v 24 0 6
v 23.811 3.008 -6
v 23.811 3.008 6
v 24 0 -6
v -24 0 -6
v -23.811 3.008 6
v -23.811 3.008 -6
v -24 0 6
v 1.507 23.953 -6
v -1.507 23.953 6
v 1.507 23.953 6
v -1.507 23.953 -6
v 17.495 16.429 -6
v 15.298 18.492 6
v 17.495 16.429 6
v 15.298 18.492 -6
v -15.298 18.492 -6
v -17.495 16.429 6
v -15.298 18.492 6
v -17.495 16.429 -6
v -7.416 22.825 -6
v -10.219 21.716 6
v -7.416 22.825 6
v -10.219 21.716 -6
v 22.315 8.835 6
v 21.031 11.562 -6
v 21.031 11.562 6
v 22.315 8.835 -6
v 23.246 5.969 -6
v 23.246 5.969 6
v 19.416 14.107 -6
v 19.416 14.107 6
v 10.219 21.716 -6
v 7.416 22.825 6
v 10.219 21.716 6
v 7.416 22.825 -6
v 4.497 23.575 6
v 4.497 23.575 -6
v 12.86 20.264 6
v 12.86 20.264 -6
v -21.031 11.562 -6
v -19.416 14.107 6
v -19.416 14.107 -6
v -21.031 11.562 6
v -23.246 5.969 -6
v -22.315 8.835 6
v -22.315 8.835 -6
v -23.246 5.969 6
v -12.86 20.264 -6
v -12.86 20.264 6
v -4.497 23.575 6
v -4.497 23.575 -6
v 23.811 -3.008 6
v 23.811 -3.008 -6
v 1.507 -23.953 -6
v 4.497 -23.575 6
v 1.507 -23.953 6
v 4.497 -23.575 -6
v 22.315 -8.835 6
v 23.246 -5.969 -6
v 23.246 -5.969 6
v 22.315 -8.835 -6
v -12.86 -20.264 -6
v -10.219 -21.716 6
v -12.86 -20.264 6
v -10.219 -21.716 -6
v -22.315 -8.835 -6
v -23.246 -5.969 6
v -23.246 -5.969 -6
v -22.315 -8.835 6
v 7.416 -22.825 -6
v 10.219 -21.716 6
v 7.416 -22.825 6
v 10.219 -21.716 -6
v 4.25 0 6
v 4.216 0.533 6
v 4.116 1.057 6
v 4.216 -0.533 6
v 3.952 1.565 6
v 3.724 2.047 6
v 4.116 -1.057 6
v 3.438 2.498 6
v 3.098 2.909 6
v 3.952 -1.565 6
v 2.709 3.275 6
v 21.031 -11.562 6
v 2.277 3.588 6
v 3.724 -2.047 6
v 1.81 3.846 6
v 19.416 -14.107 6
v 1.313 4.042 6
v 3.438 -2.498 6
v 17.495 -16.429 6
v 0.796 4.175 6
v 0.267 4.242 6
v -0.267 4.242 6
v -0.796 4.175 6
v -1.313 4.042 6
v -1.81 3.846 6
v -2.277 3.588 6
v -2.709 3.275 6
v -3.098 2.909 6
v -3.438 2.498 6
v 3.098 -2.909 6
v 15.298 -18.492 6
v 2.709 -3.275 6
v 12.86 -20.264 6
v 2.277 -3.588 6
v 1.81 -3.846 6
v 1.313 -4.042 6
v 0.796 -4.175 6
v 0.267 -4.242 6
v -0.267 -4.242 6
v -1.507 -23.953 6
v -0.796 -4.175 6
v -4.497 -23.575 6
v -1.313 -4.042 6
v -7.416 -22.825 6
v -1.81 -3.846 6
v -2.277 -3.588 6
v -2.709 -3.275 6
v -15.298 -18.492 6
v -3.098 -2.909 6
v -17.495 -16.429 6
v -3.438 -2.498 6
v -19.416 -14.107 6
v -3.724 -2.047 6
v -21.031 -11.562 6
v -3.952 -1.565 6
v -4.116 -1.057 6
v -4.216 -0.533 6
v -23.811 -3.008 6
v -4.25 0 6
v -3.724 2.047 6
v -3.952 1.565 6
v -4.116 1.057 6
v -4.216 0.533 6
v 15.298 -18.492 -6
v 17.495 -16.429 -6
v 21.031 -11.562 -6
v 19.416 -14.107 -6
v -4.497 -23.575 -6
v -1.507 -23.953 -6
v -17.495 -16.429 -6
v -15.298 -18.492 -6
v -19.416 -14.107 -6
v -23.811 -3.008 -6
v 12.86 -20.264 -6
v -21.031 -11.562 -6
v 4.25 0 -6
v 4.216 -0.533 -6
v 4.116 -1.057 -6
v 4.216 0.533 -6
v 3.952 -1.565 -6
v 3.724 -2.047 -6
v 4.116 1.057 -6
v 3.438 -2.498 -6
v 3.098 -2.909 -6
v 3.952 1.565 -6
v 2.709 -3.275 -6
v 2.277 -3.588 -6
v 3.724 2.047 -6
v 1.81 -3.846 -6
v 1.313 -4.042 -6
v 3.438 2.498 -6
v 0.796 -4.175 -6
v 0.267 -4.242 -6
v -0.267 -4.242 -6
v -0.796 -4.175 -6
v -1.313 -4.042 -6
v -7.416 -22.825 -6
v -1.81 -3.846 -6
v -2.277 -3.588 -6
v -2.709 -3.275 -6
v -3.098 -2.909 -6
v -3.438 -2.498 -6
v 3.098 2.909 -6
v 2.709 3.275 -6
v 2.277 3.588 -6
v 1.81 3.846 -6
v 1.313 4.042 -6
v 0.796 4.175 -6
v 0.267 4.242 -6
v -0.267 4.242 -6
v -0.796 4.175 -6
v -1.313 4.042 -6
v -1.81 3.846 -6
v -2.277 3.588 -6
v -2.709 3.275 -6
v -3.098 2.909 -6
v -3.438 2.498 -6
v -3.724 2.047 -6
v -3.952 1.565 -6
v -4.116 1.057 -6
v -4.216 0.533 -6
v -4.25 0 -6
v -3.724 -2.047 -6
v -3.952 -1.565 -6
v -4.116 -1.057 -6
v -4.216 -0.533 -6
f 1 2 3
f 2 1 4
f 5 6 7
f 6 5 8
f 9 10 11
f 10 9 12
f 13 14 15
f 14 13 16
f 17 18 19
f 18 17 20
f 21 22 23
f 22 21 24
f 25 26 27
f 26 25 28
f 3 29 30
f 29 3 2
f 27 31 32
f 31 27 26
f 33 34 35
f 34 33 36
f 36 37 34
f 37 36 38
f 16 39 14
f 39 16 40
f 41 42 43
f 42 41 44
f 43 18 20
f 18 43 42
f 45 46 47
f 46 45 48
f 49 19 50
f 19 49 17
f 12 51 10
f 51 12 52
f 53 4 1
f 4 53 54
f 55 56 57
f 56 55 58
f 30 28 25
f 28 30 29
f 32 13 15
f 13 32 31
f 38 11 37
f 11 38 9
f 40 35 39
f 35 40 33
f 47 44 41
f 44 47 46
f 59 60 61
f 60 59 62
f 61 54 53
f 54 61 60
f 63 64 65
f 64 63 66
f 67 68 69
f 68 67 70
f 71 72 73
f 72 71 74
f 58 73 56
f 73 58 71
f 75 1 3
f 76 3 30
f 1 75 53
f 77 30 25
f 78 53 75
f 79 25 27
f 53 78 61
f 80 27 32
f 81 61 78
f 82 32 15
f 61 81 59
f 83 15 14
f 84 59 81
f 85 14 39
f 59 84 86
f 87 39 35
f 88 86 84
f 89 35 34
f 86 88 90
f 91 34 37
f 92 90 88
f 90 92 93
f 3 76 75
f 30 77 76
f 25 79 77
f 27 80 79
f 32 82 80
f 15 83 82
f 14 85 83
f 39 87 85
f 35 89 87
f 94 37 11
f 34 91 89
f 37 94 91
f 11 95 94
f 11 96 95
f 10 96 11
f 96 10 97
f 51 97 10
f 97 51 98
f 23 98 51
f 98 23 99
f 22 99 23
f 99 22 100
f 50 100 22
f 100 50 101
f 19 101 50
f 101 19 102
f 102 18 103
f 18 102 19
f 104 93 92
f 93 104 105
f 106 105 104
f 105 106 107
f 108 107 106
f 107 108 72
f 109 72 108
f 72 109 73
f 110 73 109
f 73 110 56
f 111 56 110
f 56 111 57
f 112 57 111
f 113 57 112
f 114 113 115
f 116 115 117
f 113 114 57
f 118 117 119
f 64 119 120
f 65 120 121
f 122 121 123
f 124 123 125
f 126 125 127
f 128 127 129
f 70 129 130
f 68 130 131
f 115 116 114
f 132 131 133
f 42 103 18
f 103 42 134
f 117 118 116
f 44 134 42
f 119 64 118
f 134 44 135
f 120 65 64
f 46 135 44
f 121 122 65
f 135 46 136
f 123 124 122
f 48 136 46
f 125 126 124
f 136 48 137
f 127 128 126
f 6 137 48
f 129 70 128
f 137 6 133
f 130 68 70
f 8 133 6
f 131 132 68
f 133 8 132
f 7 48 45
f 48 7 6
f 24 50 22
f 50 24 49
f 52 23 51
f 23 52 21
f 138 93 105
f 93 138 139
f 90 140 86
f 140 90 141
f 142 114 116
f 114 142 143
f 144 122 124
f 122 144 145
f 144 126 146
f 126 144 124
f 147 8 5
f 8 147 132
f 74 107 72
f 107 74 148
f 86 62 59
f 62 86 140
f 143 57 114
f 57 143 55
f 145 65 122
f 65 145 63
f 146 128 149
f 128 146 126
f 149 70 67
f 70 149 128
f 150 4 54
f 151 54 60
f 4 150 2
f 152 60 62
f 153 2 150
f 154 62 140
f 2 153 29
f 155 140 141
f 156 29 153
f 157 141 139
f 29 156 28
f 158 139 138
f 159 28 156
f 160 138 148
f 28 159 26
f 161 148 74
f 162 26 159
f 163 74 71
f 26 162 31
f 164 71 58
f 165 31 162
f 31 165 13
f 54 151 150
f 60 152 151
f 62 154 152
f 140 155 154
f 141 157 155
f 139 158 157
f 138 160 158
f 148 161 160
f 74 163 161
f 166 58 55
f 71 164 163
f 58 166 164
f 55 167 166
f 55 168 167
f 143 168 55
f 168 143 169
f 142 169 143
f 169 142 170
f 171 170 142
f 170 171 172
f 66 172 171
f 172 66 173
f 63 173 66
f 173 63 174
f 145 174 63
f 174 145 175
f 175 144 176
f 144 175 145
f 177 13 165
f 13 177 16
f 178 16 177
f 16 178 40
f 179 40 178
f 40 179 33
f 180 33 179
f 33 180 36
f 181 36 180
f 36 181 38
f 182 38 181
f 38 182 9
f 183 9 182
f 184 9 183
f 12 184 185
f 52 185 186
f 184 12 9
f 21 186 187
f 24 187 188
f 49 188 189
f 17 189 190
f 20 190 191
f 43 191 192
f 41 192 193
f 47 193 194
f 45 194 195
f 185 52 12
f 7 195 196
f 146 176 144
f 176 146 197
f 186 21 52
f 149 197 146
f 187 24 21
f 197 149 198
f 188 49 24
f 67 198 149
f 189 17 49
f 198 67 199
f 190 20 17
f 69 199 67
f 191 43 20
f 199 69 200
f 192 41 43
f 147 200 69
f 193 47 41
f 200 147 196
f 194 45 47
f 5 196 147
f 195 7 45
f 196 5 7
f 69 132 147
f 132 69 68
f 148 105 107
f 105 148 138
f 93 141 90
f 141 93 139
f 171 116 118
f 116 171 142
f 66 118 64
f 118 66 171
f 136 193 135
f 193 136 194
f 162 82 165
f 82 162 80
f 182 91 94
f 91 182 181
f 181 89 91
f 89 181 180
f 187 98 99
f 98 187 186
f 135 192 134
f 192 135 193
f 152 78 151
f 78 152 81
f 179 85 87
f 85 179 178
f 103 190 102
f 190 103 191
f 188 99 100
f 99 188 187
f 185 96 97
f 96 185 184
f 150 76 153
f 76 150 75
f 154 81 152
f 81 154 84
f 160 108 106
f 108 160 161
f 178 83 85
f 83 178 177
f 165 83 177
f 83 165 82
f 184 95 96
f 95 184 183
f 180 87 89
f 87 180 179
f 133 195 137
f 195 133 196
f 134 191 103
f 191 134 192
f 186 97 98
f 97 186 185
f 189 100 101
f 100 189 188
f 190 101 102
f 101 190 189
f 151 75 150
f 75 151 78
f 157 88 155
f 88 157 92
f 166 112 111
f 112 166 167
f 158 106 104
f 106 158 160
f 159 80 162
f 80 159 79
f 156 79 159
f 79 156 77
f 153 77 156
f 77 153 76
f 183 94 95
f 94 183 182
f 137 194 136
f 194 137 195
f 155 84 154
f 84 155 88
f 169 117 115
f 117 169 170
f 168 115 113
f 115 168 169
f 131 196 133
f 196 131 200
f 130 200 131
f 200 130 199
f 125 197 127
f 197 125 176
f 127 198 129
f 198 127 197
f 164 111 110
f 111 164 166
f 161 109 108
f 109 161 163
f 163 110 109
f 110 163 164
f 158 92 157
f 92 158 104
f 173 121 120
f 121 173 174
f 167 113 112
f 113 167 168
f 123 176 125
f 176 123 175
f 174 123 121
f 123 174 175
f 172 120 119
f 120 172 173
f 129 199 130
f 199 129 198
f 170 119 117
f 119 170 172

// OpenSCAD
$fn = 50;


difference() {
	union() {
		translate(v = [0, 0, -6.0000000000]) {
			cylinder(h = 12, r = 24.0000000000);
		}
	}
	union() {
		translate(v = [0, 0, -100.0000000000]) {
			cylinder(h = 200, r = 4.2500000000);
		}
	}
}
